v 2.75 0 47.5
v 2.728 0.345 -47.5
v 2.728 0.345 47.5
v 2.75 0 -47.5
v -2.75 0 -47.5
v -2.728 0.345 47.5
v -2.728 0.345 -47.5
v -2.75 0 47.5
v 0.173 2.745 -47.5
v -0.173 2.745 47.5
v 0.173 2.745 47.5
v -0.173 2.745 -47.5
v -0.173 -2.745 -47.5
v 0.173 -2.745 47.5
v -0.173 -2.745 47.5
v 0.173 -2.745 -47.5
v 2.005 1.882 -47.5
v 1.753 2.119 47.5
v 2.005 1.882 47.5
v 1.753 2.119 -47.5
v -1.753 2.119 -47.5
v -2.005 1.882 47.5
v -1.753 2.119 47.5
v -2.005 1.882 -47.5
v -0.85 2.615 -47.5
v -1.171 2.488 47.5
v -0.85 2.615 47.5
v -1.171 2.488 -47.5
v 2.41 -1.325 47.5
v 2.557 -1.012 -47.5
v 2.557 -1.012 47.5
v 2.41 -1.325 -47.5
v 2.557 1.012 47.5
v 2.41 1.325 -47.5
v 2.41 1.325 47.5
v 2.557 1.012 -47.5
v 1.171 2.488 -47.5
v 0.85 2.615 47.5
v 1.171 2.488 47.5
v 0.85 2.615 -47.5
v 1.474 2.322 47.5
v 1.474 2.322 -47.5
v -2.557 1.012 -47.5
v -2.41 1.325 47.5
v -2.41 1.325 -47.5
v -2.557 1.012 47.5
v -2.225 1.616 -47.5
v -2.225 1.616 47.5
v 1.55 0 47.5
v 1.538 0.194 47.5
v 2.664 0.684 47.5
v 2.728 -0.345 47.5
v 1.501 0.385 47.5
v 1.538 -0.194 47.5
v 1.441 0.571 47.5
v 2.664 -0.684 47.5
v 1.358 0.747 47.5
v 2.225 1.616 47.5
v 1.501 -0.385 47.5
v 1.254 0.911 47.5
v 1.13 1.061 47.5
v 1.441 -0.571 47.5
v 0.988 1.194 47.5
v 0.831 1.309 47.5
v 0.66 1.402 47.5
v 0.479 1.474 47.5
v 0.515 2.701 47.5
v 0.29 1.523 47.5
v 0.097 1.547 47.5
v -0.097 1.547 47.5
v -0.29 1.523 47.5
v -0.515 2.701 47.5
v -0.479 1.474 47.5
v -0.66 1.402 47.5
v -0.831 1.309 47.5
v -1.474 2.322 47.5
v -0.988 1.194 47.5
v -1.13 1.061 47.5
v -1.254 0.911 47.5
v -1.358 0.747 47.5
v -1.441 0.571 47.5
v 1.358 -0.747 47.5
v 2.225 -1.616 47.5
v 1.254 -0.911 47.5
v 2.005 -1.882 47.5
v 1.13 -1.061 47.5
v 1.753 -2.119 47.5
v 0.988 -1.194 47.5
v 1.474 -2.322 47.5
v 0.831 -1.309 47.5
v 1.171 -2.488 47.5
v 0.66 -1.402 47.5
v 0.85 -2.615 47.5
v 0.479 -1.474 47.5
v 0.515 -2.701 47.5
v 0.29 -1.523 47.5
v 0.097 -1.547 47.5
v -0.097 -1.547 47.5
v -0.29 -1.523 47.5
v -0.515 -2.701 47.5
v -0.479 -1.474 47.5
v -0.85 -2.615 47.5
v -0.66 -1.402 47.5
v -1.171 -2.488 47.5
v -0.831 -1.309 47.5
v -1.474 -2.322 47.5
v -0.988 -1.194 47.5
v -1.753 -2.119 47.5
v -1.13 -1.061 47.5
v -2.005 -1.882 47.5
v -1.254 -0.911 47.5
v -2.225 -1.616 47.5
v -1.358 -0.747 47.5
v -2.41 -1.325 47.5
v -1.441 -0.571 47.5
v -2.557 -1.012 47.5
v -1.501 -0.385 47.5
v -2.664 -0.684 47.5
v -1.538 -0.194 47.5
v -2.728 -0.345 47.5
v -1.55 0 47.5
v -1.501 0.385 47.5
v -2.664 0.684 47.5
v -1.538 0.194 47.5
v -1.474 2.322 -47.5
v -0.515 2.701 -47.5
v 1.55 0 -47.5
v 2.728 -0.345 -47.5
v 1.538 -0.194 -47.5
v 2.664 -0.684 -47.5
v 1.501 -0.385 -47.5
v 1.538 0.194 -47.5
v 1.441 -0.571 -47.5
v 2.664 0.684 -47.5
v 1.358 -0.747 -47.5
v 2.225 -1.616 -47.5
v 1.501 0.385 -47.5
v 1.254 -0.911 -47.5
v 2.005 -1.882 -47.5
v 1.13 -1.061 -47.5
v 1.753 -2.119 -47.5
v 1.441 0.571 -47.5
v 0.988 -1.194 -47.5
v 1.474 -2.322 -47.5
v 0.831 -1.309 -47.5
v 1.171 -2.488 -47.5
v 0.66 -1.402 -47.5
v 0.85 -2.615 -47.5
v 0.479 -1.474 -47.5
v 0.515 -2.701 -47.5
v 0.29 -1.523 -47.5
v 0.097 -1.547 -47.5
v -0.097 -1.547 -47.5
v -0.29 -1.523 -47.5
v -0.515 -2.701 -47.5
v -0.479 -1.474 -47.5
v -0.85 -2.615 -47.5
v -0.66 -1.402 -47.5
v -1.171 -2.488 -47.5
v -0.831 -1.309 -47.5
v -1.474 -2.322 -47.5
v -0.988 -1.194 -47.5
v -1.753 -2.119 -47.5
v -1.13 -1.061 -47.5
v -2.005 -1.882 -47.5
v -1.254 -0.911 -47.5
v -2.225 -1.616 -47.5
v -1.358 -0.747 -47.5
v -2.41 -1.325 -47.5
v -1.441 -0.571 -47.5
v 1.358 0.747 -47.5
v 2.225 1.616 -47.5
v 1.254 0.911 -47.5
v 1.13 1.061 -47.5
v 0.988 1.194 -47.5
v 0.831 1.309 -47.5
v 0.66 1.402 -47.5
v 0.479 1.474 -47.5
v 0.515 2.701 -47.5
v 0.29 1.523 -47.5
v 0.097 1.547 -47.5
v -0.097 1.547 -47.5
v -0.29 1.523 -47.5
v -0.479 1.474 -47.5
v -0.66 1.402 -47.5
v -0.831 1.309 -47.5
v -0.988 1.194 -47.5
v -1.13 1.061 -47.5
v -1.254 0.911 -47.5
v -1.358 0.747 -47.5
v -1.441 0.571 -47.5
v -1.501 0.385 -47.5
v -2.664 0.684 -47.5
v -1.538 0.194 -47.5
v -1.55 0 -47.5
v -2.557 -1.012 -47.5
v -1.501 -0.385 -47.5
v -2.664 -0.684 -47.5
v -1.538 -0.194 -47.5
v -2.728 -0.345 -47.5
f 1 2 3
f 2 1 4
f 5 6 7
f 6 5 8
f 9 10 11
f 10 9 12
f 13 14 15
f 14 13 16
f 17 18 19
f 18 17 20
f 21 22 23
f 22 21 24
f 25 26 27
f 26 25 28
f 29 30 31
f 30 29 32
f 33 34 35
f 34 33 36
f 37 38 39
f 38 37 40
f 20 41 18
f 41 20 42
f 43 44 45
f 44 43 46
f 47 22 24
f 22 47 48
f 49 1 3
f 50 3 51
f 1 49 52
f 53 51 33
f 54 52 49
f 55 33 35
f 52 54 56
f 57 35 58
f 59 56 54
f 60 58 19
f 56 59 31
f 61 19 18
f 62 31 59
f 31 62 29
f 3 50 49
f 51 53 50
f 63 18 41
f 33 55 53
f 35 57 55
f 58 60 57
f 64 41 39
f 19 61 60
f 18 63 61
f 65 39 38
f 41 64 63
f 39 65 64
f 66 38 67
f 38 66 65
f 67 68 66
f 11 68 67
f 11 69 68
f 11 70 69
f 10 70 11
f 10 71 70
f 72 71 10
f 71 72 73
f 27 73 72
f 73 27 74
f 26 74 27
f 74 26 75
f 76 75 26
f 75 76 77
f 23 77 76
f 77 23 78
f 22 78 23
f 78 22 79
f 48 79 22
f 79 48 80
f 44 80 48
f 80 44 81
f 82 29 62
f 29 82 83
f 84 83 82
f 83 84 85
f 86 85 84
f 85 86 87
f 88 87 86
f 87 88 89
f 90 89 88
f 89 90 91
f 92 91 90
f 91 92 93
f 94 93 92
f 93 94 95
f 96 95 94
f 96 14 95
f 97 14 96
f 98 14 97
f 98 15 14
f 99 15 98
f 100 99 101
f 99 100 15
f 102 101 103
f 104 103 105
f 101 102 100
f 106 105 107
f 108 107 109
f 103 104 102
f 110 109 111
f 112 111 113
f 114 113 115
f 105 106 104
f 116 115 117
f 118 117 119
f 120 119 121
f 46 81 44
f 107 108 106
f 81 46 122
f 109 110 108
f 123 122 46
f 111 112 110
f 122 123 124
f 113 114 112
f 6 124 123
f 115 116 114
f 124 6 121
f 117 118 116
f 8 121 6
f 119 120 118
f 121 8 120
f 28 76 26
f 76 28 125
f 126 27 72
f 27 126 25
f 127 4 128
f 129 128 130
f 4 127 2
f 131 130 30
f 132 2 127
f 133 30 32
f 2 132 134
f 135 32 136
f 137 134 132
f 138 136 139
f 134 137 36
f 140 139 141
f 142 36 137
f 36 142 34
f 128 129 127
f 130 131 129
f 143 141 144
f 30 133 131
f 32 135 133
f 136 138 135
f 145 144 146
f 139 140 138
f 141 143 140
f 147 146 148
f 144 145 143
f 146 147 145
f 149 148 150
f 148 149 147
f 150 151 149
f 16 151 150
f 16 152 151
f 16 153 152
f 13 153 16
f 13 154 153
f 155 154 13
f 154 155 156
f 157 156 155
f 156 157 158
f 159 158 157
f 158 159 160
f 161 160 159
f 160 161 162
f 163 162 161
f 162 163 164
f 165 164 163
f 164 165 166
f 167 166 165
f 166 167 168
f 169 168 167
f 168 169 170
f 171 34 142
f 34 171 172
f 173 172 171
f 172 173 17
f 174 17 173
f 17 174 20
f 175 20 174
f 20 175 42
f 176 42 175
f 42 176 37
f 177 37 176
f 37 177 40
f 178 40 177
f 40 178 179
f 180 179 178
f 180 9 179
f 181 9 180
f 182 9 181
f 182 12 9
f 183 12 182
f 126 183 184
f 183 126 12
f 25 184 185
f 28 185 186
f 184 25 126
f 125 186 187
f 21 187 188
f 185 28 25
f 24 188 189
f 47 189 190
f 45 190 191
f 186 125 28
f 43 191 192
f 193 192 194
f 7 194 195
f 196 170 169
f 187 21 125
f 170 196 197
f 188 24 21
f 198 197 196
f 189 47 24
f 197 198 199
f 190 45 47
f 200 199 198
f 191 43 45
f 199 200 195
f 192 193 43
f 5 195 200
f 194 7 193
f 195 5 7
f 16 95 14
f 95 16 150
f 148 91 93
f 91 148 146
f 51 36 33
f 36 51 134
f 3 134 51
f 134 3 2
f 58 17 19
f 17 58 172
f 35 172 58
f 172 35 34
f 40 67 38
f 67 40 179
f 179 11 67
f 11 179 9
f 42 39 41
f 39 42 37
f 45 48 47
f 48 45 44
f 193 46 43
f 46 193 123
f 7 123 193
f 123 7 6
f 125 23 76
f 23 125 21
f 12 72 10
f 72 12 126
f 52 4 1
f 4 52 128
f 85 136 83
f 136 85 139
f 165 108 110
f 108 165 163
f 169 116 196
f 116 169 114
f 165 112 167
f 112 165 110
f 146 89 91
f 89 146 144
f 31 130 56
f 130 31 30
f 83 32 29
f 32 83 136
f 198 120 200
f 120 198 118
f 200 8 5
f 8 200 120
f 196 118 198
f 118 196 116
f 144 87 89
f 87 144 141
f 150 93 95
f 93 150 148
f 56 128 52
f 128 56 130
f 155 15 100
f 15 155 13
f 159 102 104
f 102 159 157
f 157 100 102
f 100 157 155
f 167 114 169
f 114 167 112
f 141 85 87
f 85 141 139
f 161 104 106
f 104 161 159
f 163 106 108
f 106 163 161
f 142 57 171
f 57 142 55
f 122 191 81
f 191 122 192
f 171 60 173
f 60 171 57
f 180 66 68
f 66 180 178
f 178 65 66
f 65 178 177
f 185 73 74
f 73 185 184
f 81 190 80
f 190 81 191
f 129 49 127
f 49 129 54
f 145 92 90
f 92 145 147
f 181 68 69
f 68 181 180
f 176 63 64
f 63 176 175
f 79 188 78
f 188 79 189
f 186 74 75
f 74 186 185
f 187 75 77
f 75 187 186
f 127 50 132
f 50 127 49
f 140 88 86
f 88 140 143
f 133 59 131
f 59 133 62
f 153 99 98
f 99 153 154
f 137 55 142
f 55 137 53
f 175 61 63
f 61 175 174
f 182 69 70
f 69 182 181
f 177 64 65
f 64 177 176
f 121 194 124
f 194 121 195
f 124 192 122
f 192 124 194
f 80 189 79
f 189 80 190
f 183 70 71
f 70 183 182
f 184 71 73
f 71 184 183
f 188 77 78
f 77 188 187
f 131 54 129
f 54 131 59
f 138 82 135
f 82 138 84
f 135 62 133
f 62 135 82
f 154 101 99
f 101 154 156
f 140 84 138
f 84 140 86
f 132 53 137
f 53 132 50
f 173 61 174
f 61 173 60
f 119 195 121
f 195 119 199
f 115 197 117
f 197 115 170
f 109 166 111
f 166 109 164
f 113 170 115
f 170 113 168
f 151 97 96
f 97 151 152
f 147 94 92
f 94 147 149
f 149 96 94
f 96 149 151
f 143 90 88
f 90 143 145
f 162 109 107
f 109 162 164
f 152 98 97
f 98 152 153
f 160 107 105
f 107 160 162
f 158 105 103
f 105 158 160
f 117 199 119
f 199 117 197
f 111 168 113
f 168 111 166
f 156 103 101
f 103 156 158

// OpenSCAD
$fn = 50;


difference() {
	union() {
		translate(v = [0, 0, -47.5000000000]) {
			cylinder(h = 95, r = 2.7500000000);
		}
	}
	union() {
		translate(v = [0, 0, -100.0000000000]) {
			cylinder(h = 200, r = 1.5500000000);
		}
	}
}
